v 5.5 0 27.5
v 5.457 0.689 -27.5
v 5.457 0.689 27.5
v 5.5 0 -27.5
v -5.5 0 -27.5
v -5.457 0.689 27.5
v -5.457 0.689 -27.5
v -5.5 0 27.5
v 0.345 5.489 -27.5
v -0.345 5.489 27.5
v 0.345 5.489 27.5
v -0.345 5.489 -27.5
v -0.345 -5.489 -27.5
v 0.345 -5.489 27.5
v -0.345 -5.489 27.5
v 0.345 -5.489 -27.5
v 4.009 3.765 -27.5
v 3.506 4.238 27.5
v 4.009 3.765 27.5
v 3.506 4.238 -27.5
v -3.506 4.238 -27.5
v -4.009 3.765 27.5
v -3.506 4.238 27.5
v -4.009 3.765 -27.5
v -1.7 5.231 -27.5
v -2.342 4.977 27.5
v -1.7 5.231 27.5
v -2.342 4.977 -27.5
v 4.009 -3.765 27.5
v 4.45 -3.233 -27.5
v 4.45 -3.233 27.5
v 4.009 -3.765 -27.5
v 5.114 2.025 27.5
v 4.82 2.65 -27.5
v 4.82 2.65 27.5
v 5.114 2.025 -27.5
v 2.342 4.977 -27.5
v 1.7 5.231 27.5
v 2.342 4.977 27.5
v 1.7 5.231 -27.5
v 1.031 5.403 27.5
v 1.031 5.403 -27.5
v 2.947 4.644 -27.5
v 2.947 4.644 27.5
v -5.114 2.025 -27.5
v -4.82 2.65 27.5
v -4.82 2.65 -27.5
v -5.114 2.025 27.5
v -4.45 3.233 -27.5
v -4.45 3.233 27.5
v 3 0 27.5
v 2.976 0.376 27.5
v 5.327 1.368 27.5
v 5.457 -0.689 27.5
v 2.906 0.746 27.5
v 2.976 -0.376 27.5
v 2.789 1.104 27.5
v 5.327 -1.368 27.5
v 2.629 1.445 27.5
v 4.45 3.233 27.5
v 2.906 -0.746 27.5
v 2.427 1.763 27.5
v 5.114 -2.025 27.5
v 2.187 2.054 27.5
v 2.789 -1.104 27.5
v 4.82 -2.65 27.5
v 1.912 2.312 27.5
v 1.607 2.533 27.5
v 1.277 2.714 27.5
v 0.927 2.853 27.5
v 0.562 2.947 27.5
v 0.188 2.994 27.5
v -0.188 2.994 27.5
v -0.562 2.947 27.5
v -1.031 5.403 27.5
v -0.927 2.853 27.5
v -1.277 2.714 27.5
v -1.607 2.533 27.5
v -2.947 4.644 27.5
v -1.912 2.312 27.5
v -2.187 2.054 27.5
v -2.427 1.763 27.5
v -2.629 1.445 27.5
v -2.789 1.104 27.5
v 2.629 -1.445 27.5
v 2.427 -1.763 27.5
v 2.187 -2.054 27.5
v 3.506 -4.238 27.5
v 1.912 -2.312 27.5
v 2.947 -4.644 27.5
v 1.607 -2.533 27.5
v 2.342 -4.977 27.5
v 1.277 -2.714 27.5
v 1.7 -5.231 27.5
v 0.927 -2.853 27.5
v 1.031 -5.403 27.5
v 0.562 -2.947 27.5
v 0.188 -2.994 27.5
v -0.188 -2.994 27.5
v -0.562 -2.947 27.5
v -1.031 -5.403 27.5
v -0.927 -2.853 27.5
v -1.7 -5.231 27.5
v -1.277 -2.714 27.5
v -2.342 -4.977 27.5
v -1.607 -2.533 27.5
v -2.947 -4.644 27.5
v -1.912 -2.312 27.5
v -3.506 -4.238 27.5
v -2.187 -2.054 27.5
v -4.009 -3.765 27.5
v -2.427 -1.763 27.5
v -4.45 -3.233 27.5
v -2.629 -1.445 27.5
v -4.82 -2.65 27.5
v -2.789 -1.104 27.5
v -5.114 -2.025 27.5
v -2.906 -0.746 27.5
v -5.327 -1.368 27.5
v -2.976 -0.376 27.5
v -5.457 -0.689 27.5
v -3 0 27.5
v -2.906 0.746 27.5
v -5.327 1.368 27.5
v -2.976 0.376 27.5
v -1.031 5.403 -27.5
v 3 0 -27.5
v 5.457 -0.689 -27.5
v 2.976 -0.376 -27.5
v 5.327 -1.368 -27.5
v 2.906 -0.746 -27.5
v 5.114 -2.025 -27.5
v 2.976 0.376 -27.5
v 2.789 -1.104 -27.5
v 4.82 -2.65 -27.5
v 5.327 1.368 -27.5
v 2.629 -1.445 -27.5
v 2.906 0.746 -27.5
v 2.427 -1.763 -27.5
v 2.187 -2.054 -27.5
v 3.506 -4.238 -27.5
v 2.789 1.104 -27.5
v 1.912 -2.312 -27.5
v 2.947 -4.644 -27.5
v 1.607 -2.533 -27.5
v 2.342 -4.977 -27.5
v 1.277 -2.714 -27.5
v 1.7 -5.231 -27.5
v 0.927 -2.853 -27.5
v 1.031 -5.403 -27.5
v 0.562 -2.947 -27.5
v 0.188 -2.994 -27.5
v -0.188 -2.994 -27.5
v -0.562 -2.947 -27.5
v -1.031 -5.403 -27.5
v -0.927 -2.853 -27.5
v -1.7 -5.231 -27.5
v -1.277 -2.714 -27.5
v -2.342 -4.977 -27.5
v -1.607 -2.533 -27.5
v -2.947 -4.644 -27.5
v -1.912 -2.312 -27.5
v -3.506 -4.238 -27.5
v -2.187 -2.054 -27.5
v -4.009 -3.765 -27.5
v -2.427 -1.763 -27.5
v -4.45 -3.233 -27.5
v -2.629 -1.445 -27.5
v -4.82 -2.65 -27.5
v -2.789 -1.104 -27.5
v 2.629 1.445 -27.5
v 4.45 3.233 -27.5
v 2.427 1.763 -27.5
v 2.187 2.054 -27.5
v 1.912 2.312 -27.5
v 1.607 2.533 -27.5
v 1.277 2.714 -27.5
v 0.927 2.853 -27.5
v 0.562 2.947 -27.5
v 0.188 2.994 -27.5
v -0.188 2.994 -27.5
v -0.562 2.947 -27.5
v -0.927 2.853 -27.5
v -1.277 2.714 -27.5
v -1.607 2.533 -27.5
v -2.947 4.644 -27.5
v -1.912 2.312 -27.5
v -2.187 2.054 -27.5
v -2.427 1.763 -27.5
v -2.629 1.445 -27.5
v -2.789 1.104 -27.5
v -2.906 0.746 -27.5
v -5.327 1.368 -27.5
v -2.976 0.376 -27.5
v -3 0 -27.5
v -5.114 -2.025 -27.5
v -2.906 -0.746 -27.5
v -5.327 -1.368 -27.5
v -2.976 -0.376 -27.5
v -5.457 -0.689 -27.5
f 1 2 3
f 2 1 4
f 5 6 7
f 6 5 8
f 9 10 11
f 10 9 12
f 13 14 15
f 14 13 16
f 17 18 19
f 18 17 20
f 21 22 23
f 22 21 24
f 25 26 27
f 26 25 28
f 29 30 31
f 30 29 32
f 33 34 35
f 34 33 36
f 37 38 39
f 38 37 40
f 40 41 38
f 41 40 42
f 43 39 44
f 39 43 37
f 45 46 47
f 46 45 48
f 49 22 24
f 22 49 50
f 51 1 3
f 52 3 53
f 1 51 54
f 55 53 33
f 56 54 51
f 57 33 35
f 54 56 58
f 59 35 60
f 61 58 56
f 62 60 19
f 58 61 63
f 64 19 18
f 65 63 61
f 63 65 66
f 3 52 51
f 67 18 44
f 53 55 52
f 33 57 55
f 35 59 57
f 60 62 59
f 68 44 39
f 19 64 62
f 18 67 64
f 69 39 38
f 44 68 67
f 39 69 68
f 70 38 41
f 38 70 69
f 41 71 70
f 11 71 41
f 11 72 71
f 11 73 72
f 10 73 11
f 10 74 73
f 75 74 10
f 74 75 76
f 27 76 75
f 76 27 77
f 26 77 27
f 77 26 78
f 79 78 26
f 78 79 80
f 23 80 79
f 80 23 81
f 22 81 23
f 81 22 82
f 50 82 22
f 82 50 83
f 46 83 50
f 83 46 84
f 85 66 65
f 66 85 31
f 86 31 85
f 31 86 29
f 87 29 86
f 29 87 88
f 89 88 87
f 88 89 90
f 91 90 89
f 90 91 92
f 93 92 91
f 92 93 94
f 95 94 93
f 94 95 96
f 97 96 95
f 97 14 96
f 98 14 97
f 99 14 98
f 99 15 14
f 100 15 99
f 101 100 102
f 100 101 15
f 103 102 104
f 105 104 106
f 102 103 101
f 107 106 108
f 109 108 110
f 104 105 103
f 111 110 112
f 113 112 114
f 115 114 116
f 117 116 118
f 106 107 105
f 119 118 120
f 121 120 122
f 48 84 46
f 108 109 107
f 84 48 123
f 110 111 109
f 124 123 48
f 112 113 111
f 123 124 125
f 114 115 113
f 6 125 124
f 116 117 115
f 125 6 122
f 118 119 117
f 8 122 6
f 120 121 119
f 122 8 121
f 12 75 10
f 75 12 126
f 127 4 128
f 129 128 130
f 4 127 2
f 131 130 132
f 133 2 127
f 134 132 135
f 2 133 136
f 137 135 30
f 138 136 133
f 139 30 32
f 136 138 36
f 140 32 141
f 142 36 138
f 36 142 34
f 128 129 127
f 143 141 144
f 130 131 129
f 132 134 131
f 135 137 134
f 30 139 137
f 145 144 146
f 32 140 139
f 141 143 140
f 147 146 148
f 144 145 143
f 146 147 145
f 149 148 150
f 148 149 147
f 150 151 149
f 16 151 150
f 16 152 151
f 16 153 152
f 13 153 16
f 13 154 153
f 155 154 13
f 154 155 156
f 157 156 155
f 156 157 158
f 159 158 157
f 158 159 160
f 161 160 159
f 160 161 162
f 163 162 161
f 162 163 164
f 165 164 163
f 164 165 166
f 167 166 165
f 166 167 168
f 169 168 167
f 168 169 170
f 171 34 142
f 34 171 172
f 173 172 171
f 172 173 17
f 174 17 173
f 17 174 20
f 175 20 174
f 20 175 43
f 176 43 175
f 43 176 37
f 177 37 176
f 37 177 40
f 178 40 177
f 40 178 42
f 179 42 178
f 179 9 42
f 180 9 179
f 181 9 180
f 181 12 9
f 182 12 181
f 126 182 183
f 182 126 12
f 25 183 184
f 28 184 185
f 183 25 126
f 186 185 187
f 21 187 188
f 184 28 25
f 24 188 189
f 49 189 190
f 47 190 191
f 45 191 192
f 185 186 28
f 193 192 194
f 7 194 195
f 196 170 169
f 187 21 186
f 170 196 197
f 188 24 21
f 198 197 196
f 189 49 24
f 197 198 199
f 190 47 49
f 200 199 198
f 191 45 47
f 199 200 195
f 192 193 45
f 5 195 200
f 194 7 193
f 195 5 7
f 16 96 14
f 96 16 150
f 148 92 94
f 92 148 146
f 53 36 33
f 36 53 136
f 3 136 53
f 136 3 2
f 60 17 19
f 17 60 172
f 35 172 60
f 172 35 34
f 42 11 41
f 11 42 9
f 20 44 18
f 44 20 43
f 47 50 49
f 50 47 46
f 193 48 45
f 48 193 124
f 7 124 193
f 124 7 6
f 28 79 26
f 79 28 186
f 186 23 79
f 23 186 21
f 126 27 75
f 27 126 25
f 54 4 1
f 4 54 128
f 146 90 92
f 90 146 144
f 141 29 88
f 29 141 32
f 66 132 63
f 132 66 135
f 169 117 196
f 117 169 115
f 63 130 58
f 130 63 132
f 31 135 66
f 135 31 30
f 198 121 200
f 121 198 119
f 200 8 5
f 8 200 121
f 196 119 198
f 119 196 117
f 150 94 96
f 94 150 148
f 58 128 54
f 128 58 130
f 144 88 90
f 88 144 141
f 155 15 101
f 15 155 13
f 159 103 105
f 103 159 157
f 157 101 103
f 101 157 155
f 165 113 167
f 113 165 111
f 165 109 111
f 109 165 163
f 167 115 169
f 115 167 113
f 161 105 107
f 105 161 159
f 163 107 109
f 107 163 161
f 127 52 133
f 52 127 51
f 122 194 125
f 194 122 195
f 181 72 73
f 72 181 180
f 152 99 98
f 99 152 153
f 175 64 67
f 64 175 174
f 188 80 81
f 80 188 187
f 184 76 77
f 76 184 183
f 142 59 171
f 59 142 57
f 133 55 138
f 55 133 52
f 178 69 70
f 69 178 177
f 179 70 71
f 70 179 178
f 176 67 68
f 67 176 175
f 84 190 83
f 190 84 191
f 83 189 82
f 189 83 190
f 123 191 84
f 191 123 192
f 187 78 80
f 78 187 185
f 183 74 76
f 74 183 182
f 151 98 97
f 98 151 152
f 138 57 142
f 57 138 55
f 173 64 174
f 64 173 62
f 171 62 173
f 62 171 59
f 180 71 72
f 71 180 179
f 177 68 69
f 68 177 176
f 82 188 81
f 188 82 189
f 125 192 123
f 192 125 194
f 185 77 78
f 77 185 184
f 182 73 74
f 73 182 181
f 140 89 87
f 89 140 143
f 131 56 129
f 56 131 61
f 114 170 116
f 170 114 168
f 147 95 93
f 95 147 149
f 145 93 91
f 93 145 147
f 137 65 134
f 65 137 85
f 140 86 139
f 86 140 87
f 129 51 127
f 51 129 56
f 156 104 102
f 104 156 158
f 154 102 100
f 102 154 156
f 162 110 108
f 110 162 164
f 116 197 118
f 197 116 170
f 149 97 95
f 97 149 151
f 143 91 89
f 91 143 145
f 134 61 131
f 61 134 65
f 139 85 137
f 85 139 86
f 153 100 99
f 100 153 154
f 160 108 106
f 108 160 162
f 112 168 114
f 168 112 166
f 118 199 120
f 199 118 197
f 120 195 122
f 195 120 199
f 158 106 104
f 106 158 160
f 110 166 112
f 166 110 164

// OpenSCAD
$fn = 50;


difference() {
	union() {
		translate(v = [0, 0, -27.5000000000]) {
			cylinder(h = 55, r = 5.5000000000);
		}
	}
	union() {
		translate(v = [0, 0, -100.0000000000]) {
			cylinder(h = 200, r = 3);
		}
	}
}
